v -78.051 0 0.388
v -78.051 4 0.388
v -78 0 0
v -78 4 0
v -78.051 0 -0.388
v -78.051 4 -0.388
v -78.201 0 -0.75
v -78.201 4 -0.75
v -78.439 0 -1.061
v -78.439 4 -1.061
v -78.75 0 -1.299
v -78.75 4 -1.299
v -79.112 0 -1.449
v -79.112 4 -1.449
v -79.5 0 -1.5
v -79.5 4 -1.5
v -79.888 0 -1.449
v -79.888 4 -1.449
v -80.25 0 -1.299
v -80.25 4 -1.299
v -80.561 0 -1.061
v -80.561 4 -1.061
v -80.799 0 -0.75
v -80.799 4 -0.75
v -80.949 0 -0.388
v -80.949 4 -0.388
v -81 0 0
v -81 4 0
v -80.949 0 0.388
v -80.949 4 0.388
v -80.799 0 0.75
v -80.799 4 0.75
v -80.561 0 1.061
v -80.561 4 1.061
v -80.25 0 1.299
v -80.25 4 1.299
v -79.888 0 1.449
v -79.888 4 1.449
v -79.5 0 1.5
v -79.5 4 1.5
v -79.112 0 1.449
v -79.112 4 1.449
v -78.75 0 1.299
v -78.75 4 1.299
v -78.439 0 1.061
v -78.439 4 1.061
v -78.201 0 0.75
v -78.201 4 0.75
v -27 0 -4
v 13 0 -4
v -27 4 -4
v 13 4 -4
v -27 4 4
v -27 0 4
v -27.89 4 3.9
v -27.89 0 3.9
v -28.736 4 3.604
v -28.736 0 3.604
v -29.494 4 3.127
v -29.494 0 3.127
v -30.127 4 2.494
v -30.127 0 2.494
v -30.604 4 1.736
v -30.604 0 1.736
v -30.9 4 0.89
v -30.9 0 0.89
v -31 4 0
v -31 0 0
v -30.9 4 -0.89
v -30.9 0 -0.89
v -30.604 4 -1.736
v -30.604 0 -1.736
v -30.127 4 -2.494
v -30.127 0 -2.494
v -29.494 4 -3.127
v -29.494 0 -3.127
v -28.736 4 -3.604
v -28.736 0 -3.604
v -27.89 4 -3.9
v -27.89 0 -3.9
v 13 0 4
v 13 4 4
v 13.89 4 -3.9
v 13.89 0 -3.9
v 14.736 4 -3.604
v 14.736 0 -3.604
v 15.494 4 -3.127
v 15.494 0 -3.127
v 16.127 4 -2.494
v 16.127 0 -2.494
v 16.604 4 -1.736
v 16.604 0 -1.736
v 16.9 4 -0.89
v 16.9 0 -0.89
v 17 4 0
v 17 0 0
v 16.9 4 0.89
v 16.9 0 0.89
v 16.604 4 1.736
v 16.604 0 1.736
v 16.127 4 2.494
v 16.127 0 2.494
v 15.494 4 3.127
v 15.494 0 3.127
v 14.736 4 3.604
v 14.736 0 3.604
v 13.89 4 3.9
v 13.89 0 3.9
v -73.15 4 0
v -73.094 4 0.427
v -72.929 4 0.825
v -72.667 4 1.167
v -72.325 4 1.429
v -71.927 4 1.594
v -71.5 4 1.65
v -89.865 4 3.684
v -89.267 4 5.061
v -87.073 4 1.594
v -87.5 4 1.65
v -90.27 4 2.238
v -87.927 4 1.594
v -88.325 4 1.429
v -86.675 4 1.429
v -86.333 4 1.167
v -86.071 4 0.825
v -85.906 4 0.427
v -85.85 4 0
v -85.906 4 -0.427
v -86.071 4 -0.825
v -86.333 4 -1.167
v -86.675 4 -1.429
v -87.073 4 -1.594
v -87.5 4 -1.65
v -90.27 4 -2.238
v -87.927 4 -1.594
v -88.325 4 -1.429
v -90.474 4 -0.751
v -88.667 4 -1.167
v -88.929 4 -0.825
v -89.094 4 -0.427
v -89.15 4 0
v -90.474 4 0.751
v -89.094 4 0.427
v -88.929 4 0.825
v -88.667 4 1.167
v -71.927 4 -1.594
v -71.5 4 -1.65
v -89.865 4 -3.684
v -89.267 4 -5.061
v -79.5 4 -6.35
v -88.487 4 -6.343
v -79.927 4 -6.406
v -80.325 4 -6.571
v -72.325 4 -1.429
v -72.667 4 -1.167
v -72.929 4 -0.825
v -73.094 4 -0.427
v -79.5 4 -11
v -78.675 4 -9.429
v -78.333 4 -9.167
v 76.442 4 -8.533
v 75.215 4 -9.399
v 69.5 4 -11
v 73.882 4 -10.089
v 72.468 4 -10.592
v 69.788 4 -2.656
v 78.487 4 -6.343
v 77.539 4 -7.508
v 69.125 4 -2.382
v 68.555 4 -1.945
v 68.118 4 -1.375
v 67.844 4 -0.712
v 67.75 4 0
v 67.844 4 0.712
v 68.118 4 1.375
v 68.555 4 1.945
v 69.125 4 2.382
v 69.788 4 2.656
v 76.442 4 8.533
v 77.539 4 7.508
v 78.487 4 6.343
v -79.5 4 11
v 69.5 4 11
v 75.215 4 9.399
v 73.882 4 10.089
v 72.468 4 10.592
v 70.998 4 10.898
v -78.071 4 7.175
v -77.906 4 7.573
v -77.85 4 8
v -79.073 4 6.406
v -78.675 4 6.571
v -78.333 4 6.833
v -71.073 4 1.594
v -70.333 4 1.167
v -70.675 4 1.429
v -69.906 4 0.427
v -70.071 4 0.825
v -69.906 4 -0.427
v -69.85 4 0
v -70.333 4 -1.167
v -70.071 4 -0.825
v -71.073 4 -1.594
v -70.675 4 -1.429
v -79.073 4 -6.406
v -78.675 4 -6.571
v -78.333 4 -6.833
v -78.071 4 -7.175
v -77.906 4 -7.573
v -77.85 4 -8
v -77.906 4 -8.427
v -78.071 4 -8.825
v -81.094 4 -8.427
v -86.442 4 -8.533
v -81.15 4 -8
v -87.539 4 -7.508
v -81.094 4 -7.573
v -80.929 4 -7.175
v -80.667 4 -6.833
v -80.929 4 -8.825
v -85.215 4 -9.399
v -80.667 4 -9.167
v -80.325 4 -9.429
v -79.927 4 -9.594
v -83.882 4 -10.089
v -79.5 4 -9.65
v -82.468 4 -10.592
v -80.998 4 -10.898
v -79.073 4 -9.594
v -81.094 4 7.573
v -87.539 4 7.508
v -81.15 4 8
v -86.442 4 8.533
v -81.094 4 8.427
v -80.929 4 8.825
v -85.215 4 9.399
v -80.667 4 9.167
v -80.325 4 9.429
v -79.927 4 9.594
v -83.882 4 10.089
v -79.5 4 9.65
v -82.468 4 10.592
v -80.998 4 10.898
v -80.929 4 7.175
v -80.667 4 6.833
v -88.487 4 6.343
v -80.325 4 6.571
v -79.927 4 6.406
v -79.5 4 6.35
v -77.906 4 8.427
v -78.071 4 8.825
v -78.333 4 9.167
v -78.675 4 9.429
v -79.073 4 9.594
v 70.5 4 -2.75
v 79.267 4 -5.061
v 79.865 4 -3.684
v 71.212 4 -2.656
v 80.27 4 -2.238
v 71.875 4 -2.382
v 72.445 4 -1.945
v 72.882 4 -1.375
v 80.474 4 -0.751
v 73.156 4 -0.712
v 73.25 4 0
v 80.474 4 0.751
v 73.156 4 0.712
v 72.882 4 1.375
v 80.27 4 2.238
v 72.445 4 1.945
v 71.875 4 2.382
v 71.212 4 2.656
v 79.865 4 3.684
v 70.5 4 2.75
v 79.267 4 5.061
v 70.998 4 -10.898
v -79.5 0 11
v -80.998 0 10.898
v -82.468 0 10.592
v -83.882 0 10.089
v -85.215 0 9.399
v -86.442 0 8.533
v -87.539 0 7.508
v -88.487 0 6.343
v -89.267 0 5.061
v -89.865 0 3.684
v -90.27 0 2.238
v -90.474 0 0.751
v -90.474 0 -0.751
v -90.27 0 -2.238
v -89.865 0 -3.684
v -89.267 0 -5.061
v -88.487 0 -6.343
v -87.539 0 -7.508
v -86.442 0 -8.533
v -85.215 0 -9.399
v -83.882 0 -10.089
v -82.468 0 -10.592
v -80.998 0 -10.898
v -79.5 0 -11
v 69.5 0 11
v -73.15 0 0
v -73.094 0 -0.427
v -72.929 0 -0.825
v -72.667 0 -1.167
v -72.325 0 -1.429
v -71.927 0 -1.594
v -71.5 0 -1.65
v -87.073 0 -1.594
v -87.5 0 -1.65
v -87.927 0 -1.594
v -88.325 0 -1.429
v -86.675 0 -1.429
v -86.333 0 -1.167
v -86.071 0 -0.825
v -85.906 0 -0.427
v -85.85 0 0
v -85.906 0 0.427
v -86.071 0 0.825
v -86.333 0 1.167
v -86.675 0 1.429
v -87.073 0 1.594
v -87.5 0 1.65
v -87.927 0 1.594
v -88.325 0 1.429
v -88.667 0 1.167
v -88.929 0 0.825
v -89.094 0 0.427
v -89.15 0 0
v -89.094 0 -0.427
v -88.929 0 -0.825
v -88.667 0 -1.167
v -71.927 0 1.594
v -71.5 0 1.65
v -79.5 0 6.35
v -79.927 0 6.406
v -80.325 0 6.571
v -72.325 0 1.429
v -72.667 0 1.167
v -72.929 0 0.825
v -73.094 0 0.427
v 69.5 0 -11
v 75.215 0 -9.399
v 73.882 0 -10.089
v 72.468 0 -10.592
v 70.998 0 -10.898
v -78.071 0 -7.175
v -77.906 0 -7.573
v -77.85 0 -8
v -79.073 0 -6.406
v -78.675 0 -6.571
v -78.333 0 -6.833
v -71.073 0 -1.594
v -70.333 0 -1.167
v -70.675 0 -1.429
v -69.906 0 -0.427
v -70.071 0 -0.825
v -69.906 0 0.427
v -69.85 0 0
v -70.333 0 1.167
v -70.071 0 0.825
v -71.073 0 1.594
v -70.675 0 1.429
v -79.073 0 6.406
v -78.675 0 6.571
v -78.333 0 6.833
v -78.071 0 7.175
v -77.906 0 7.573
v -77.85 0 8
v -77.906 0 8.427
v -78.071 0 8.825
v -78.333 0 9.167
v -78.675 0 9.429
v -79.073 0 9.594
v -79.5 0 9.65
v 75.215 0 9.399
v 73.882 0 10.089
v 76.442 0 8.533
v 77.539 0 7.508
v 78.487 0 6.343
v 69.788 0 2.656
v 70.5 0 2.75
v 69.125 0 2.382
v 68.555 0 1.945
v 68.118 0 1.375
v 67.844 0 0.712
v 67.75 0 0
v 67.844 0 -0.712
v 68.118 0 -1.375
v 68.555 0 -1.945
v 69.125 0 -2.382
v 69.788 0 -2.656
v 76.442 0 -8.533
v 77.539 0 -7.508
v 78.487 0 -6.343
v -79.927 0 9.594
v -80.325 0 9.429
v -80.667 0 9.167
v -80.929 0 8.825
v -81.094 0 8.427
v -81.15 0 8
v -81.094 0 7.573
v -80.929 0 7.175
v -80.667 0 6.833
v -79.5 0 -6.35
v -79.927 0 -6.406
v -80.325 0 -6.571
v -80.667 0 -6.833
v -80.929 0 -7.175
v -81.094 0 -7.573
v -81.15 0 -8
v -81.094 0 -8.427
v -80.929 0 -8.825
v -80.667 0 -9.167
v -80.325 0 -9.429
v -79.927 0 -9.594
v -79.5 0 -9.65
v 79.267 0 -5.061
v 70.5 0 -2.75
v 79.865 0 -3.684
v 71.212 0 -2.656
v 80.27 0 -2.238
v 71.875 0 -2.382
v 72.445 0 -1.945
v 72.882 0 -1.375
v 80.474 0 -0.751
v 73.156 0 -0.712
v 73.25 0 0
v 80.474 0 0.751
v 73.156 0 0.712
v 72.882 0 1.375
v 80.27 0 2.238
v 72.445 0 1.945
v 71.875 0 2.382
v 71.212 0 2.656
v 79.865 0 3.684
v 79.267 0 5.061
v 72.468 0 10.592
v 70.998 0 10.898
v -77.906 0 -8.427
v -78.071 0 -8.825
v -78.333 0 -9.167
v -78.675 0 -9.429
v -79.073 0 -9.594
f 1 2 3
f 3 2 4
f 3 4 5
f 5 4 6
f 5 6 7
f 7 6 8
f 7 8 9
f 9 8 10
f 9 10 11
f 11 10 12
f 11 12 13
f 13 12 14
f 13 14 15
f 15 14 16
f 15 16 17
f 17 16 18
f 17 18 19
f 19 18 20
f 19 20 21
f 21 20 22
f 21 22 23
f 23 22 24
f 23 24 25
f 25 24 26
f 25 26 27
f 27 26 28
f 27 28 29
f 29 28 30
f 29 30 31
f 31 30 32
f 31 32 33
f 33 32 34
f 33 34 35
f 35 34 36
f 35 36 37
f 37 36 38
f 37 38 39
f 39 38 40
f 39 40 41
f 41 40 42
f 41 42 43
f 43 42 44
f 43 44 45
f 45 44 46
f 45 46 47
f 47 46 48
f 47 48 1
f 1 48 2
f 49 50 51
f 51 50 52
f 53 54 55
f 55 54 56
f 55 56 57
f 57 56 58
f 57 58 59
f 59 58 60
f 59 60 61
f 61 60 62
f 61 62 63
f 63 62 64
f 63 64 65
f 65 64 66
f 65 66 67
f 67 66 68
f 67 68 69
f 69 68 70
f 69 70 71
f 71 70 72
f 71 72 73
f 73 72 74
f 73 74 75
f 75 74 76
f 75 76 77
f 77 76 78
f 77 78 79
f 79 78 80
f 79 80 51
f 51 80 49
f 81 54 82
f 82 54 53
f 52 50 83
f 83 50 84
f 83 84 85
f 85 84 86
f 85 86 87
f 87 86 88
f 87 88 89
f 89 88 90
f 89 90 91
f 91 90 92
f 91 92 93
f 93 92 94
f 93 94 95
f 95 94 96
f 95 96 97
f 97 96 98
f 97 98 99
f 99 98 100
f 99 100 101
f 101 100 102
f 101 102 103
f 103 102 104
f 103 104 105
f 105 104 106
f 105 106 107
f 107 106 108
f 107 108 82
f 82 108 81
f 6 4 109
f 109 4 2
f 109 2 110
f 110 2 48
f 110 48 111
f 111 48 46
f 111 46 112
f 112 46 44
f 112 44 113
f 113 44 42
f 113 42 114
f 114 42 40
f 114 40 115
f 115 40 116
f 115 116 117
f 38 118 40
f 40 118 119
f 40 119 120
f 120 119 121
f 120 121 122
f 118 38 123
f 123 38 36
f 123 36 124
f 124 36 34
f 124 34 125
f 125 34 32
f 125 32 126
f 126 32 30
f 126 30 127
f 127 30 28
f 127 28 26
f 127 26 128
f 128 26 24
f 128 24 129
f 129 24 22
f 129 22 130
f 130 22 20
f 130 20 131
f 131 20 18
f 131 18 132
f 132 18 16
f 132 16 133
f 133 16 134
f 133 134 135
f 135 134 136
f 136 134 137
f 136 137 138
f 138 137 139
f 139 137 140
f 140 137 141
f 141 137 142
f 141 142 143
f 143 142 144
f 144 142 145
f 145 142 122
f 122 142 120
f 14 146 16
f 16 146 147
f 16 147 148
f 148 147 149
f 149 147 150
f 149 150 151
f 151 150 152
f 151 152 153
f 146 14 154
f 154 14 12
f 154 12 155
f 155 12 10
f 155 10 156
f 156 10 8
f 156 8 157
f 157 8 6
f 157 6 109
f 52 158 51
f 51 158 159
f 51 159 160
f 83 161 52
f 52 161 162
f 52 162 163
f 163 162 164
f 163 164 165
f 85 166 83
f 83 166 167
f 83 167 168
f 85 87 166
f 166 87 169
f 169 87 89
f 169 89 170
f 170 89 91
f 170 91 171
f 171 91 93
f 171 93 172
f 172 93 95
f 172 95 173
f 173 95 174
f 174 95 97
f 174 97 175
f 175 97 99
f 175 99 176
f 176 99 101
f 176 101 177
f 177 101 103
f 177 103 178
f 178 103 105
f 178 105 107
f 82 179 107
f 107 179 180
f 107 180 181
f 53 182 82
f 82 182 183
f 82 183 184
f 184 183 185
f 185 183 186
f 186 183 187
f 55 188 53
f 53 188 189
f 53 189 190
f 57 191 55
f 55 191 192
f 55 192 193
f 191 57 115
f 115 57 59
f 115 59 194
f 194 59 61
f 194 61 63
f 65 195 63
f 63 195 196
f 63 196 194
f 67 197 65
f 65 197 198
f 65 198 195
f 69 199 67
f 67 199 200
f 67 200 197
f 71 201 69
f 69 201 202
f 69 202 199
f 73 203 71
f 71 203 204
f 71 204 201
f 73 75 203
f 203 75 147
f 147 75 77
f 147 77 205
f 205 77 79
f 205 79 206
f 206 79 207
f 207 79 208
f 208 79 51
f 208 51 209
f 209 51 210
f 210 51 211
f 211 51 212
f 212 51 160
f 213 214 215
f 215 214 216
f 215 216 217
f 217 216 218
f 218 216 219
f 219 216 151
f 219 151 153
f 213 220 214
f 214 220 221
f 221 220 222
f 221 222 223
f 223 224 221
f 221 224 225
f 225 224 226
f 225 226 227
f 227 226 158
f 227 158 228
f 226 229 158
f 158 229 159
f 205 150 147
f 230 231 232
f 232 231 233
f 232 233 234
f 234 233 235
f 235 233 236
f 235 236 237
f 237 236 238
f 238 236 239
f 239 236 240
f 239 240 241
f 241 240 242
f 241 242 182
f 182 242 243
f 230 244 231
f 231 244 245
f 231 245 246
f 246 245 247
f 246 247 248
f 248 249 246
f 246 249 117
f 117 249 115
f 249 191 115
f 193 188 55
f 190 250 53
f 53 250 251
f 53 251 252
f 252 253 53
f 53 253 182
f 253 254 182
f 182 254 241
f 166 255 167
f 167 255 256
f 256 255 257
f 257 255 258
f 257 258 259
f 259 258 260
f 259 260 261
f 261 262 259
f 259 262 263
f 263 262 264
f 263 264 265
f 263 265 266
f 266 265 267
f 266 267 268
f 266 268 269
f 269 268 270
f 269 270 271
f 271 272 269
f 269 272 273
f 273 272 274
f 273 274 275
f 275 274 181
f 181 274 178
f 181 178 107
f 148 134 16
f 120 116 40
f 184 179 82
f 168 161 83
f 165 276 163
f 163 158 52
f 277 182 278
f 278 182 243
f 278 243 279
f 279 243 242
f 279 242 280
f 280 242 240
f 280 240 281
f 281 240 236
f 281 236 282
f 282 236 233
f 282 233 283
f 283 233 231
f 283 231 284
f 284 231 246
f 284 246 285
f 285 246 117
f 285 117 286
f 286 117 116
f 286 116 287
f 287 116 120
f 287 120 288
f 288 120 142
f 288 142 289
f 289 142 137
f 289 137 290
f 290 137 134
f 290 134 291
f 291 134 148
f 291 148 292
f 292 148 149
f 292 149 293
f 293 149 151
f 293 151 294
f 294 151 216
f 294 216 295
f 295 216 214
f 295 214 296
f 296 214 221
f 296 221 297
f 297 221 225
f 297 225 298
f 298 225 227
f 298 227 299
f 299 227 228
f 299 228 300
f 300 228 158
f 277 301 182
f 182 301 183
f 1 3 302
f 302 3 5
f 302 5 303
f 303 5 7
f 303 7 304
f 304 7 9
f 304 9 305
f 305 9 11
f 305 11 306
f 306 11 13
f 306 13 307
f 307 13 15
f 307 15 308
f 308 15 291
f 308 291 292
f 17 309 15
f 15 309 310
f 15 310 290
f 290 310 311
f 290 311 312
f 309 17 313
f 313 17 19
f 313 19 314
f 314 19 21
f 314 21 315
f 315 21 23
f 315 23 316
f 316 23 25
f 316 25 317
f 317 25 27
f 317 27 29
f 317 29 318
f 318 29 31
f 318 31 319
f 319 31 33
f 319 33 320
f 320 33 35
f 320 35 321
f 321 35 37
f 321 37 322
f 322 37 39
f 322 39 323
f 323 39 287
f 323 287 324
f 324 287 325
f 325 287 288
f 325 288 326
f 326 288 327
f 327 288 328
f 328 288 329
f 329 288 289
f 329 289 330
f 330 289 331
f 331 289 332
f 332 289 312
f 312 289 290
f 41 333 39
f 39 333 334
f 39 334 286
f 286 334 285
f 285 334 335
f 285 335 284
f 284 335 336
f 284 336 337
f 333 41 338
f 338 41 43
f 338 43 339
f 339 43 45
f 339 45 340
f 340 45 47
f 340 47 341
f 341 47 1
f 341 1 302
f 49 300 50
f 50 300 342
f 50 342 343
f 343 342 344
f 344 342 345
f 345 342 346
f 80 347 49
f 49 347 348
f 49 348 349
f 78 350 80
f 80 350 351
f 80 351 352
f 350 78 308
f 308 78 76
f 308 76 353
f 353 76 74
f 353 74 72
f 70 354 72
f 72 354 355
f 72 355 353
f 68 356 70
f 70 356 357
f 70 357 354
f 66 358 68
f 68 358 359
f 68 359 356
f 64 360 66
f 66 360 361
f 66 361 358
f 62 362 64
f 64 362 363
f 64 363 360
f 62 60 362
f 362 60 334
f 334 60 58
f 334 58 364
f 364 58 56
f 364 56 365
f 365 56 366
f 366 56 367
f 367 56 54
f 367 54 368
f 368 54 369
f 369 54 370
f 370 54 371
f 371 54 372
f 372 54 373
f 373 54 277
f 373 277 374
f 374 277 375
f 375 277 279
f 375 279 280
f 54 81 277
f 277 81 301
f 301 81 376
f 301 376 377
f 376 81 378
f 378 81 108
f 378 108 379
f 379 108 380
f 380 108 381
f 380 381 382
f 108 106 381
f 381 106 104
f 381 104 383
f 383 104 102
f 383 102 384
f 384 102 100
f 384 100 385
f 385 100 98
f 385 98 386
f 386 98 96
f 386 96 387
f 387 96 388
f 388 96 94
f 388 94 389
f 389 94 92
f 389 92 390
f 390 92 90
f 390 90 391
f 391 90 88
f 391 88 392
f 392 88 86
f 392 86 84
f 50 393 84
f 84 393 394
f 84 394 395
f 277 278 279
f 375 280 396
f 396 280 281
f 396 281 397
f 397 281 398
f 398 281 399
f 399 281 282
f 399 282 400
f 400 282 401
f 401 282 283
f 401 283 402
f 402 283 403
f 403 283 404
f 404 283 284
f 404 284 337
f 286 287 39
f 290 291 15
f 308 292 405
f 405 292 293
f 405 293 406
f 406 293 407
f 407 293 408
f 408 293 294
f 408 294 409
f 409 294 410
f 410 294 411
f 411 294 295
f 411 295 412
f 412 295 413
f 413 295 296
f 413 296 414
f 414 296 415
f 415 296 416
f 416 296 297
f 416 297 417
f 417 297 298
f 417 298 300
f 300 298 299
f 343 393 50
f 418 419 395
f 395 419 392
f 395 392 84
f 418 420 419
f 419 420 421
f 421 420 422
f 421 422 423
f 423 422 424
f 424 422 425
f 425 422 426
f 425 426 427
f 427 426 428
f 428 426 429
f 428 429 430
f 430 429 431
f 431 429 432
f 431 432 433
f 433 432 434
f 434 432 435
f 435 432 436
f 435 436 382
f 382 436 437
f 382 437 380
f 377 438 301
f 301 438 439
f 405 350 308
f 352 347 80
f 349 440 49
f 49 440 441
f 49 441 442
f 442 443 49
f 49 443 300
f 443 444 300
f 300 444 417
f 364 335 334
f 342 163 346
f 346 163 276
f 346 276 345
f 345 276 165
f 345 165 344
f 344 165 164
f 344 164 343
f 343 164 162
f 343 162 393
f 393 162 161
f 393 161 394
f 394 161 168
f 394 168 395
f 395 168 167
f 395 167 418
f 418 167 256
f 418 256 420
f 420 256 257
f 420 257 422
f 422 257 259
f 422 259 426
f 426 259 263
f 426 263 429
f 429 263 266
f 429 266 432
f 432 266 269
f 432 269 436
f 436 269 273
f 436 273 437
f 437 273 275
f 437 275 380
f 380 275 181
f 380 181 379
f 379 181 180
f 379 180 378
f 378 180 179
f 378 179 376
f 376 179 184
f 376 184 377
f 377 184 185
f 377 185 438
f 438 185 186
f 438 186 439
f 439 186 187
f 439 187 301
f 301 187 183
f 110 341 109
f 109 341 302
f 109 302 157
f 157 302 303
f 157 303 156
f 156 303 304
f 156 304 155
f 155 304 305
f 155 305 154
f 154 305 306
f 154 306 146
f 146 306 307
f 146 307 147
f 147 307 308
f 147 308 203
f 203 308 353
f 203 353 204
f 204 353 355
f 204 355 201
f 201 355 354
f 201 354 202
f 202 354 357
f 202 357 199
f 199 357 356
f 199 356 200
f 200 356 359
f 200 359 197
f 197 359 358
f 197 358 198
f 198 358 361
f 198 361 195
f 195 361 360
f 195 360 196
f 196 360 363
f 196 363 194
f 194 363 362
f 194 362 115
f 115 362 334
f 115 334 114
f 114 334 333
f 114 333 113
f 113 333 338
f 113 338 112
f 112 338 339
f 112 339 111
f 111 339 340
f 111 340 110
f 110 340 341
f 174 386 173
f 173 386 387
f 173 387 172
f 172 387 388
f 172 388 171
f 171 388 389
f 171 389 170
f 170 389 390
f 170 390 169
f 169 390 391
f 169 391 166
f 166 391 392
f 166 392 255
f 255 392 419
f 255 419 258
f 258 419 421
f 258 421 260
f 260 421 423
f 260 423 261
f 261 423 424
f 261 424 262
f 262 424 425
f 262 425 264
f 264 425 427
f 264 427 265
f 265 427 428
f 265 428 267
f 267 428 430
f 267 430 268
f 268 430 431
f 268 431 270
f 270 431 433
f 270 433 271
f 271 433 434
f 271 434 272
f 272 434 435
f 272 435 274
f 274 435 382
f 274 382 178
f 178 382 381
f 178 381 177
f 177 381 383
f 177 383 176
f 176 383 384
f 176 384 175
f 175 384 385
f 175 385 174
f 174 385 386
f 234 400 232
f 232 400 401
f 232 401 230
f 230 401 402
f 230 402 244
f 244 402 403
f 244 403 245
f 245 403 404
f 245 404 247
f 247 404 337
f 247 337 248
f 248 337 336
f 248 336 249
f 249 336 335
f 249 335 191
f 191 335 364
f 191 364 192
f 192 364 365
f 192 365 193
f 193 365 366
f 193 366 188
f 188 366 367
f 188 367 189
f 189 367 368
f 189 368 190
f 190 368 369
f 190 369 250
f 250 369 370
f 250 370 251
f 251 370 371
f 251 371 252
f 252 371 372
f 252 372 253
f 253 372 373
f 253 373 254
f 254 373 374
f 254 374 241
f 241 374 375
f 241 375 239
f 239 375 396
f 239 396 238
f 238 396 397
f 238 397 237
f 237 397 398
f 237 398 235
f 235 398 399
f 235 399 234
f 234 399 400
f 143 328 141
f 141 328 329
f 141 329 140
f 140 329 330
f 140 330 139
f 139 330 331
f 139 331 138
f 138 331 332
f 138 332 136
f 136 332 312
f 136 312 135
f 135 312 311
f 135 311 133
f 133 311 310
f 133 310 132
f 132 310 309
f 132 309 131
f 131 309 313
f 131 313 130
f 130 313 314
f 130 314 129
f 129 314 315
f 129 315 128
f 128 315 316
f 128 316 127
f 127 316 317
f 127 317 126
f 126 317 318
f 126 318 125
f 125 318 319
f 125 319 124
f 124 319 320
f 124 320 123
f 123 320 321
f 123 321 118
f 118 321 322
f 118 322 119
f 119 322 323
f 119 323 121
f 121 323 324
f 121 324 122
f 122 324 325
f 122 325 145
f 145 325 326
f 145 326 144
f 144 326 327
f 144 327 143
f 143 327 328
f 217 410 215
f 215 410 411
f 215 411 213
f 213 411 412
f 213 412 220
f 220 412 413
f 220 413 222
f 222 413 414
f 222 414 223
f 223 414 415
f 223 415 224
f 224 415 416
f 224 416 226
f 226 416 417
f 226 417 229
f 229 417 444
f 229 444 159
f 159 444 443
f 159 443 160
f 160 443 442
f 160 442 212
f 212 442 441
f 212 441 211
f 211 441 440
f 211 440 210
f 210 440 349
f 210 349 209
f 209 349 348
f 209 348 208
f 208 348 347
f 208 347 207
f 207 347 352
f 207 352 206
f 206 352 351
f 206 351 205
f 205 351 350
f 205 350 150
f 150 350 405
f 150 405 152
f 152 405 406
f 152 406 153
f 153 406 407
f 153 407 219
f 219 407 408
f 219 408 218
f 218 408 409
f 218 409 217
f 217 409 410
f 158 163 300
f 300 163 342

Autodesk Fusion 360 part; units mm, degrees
sketch "Sketch1" plane through (0, 0, 0) normal (0, 1, 0) x (1, 0, 0)
  line L0 (-90.5, 11) -> (80.5, 11)
  line L1 (80.5, 11) -> (80.5, -11)
  line L2 (80.5, -11) -> (-90.5, -11)
  line L3 (-90.5, -11) -> (-90.5, 11)
  circle A0 centre (-71.5, 0) radius 1.65
  circle A1 centre (-79.5, 8) radius 1.65
  circle A2 centre (-87.5, 0) radius 1.65
  circle A3 centre (-79.5, -8) radius 1.65
  circle A4 centre (70.5, 0) radius 2.75
  point P0 (-79.5, 0)
  dimension "d6" = 11
  dimension "d7" = 22
  dimension "d10" = 3.3
  dimension "d11" = 8
  dimension "d13" = 360
  dimension "d14" = 5.5
  dimension "d15" = 10
  dimension "d16" = 150
  dimension "d17" = 11
  dimension "d18" = 11
  dimension "d19" = 11
extrude "Extrude1" add sketch "Sketch1" along normal blind 4
fillet "Fillet1" radius 11 2 edges at (80.5, 2, -11) (80.5, 2, 11)
fillet "Fillet2" radius 11 2 edges at (-90.5, 2, 11) (-90.5, 2, -11)
sketch "Sketch3" plane through (0, 4, 0) normal (0, 1, 0) x (-1, 0, 0)
  circle A0 centre (79.5, -8) radius 1.65
  circle A1 centre (87.5, 0) radius 1.65
  circle A2 centre (79.5, 8) radius 1.65
  circle A3 centre (-70.5, 0) radius 2.75
  circle A4 centre (71.5, 0) radius 1.65
  arc A5 (79.5, -11) -> (79.5, 11) centre (79.5, 0) ccw
  line L0 (79.5, 11) -> (-69.5, 11)
  arc A6 (-69.5, 11) -> (-69.5, -11) centre (-69.5, 0) ccw
  line L1 (-69.5, -11) -> (79.5, -11)
  line L2 (27, 4) -> (-13, 4)
  arc A7 (-13, 4) -> (-13, -4) centre (-13, 0) ccw
  line L3 (-13, -4) -> (27, -4)
  arc A8 (27, -4) -> (27, 4) centre (27, 0) ccw
  line L4 (27, 0) -> (-13, 0) construction
  dimension "d24" = 8
  dimension "d30" = 40
extrude "Extrude2" cut sketch "Sketch3" against normal up to surface (4 mm away) contours L2 A7 L3 A8
sketch "Sketch4" plane through (0, 4, 0) normal (0, 1, 0) x (-1, 0, 0)
  line L0 (27, -4) -> (-13, -4)
  arc A0 (-13, 4) -> (-13, -4) centre (-13, 0) ccw
  line L1 (-13, 4) -> (27, 4)
  arc A1 (27, -4) -> (27, 4) centre (27, 0) ccw
  circle A2 centre (79.5, -8) radius 1.65
  circle A3 centre (87.5, 0) radius 1.65
  circle A4 centre (79.5, 8) radius 1.65
  circle A5 centre (-70.5, 0) radius 2.75
  circle A6 centre (71.5, 0) radius 1.65
  arc A7 (79.5, -11) -> (79.5, 11) centre (79.5, 0) ccw
  line L2 (79.5, 11) -> (-69.5, 11)
  arc A8 (-69.5, 11) -> (-69.5, -11) centre (-69.5, 0) ccw
  line L3 (-69.5, -11) -> (79.5, -11)
  circle A9 centre (79.5, 0) radius 1.5
  dimension "d27" = 3
extrude "Extrude3" cut sketch "Sketch4" against normal up to surface (4 mm away) contours A9
equation "length = 150 mm"
equation "width = 22 mm"
equation "thickness = 4 mm"
equation "d5 = length + width / 2"
equation "d6 = width / 2"
equation "d7 = width"
equation "d16 = length"
equation "d17 = width / 2"
equation "d18 = width / 2"
equation "d20 = thickness"
equation "d22 = width / 2"
equation "d23 = width / 2"
